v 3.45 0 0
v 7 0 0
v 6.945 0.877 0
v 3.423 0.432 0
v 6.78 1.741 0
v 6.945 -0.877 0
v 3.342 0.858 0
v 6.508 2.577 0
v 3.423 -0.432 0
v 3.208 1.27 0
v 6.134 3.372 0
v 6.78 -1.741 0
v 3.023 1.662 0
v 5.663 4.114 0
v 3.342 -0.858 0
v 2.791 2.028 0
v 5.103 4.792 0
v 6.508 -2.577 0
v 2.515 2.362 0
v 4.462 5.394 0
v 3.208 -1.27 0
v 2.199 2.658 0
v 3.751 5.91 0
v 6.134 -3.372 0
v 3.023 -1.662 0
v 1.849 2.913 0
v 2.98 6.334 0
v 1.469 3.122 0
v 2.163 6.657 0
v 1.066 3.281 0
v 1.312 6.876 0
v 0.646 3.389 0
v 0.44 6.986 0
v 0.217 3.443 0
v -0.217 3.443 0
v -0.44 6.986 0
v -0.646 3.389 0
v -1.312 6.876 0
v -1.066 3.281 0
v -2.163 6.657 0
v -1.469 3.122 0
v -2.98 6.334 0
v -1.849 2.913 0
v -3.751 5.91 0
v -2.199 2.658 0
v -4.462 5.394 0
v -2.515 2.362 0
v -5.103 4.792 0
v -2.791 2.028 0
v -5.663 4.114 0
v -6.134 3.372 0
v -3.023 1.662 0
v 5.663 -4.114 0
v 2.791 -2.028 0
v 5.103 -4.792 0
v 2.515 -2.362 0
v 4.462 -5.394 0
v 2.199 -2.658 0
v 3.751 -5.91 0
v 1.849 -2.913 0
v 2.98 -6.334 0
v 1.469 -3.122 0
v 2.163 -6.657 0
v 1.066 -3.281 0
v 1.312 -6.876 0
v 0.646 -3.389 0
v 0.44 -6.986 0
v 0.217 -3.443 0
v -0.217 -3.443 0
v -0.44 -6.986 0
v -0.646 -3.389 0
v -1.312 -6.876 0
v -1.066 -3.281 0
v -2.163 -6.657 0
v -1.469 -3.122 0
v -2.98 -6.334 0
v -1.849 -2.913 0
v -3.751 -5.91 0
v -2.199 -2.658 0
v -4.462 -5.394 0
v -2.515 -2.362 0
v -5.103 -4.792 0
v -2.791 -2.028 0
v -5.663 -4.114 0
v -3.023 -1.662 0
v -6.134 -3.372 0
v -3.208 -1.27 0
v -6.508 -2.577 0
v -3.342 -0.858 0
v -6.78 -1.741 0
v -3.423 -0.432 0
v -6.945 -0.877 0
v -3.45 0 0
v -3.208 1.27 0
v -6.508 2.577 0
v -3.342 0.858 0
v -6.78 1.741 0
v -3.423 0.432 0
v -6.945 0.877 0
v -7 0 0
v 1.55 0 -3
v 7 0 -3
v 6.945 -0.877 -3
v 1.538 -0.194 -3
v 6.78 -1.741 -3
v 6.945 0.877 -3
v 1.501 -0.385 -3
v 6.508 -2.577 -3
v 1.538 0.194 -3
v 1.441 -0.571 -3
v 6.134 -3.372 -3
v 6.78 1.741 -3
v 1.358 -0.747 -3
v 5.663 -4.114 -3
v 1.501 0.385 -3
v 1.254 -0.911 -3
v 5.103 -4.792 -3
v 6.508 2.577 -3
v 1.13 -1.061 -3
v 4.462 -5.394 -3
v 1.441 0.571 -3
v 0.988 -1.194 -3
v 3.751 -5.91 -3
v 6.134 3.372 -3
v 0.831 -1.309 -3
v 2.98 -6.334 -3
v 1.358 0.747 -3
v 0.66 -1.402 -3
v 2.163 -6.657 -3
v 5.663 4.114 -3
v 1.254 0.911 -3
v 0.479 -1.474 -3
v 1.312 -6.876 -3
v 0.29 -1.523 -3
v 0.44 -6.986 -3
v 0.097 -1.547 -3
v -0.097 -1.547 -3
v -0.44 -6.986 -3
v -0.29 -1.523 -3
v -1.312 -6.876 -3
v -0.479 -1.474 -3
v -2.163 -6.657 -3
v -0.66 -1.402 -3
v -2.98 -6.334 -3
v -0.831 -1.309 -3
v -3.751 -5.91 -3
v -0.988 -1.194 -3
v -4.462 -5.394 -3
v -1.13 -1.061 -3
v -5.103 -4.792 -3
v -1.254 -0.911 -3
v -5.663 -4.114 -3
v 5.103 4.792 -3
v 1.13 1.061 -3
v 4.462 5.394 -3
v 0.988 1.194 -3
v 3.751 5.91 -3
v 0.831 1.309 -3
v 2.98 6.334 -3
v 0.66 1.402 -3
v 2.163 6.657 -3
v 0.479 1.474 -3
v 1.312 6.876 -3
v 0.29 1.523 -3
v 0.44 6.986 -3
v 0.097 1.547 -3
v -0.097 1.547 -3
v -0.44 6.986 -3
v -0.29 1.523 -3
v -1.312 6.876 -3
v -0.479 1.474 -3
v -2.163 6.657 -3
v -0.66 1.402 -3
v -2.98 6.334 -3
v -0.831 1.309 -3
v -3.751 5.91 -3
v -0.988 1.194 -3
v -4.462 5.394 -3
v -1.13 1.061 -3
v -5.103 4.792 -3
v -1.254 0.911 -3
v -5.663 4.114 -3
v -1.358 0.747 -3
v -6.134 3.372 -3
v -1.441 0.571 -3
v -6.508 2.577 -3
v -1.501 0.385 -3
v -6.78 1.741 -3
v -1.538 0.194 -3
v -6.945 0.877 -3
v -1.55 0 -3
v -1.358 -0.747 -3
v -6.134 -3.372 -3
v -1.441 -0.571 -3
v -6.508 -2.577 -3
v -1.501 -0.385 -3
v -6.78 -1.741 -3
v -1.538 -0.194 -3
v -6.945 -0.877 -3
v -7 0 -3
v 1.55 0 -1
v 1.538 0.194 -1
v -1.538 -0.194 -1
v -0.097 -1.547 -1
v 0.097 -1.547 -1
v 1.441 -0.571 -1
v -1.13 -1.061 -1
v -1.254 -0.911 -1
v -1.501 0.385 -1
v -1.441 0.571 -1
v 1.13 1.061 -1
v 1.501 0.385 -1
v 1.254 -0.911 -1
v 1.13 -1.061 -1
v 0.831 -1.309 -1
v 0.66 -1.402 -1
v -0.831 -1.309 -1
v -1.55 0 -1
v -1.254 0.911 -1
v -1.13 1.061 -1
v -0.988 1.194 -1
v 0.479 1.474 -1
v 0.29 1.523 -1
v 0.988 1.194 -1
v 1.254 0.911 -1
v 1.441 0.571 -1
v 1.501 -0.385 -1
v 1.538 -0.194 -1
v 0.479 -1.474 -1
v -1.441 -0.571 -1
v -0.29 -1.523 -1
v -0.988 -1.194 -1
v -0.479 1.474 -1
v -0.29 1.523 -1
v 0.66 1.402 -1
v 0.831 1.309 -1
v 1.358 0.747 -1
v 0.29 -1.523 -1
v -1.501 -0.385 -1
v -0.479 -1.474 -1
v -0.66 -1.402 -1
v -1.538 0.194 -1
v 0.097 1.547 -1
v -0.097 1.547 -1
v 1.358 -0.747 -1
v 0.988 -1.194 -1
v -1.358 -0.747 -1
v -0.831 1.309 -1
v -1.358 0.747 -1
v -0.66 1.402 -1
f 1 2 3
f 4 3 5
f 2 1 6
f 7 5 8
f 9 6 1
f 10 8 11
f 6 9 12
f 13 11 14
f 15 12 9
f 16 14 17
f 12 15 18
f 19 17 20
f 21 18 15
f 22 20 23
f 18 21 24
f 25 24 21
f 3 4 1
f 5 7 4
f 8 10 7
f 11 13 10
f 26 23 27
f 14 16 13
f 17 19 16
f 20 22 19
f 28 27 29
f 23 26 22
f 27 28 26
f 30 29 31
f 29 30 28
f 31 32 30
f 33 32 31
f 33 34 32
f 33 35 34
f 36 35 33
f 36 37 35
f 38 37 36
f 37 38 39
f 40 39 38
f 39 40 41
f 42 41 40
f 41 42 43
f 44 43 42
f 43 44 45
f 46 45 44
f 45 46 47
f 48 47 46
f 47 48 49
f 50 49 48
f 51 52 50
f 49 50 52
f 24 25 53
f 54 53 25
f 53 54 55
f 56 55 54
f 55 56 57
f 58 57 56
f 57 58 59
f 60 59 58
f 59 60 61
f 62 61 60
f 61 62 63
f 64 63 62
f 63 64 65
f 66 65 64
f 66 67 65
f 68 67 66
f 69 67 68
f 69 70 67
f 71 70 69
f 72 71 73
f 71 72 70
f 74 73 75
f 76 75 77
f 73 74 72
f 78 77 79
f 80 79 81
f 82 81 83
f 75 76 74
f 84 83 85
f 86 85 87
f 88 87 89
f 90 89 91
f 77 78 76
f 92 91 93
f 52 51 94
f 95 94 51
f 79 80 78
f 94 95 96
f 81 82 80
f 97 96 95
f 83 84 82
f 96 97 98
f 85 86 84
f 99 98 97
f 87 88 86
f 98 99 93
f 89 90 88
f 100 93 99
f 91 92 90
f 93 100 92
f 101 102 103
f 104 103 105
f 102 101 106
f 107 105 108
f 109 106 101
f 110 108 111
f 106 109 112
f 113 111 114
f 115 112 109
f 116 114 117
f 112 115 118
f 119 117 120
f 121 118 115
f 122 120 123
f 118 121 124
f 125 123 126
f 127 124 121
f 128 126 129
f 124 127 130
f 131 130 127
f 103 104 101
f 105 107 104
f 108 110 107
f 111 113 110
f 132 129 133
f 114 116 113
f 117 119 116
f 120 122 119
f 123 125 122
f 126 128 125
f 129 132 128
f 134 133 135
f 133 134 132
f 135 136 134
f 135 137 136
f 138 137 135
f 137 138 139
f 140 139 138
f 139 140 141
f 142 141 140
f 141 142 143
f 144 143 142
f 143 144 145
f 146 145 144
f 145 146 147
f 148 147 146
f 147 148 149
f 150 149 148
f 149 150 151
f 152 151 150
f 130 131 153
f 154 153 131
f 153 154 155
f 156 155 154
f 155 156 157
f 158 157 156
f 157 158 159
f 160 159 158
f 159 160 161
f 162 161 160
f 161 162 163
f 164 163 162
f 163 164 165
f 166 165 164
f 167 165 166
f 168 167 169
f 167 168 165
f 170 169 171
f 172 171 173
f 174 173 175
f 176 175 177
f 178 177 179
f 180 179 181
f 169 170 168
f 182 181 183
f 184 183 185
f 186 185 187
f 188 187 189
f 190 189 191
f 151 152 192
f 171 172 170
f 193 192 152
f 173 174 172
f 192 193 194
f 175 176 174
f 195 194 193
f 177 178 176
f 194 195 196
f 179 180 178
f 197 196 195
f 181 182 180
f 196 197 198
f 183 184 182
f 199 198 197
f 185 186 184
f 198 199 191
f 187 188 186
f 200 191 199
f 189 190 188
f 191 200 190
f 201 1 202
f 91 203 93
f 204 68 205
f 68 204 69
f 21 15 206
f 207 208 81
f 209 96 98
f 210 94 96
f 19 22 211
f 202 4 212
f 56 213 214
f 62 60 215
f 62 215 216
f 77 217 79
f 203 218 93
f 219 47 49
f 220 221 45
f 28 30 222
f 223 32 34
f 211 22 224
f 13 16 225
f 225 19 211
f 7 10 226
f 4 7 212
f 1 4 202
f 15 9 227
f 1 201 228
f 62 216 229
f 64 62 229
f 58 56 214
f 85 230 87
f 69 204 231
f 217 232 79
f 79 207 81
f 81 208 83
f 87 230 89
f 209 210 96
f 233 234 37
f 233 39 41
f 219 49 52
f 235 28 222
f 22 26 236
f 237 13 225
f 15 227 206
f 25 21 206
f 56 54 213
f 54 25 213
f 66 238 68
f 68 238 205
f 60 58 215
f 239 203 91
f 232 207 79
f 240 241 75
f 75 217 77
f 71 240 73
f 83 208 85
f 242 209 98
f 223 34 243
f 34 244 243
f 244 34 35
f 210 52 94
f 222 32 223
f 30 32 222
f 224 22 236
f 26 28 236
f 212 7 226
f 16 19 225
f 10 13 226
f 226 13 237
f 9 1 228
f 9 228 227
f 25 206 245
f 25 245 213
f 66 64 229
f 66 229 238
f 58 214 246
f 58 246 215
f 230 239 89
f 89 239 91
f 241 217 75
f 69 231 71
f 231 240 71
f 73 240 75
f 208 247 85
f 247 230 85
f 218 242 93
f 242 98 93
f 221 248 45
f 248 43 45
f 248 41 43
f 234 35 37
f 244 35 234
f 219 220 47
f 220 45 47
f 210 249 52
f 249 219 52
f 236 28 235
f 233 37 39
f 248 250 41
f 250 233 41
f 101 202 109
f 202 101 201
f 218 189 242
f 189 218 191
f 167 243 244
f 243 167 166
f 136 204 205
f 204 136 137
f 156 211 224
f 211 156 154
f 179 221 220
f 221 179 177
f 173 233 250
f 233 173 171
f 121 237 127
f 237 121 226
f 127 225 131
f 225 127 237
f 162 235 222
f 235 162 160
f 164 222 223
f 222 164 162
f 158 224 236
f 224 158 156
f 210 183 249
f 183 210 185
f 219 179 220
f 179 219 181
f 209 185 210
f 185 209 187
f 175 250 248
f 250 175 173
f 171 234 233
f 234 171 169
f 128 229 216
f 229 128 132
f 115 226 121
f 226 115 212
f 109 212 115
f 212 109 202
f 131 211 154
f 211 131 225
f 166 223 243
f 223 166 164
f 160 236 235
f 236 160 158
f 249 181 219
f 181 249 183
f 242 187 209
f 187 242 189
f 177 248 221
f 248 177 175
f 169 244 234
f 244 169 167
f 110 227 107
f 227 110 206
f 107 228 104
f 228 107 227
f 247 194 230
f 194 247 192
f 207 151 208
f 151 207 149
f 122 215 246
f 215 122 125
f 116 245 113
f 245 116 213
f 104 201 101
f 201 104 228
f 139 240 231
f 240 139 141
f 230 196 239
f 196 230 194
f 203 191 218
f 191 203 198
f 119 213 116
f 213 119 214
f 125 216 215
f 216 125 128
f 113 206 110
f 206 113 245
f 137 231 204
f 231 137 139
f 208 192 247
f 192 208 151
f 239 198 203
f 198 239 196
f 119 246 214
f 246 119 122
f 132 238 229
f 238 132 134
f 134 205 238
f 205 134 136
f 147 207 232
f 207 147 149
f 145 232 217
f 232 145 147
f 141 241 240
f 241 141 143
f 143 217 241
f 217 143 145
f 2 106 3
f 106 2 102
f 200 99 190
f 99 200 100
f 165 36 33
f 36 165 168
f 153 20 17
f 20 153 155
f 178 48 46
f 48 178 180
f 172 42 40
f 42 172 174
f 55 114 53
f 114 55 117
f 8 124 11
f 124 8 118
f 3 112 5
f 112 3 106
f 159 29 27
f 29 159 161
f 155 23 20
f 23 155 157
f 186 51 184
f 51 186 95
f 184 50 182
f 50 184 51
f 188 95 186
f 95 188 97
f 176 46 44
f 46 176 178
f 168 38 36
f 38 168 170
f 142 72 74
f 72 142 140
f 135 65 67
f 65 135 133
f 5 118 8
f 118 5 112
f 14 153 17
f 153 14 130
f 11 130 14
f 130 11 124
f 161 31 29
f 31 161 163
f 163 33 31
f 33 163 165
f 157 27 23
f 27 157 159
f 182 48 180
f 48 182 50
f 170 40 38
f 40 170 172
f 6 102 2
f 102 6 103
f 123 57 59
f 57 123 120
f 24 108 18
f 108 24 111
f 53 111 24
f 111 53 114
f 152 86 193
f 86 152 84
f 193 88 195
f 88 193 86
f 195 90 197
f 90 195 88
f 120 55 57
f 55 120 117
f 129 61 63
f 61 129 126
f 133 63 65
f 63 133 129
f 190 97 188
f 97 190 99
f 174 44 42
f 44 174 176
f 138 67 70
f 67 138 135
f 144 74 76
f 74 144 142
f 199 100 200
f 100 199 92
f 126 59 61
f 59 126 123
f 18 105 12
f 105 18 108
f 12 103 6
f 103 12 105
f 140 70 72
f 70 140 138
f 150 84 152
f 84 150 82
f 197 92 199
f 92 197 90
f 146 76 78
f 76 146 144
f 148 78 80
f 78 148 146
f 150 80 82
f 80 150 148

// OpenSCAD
$fn = 50;


difference() {
	union() {
		translate(v = [0, 0, -3.0000000000]) {
			cylinder(h = 3, r = 7.0000000000);
		}
	}
	union() {
		translate(v = [0, 0, 0]) {
			rotate(a = [0, 0, 0]) {
				difference() {
					union() {
						translate(v = [0, 0, -3.0000000000]) {
							cylinder(h = 3, r = 1.2500000000);
						}
						translate(v = [0, 0, -1.0000000000]) {
							cylinder(h = 1.0000000000, r1 = 1.5500000000, r2 = 3.4500000000);
						}
						translate(v = [0, 0, -3.0000000000]) {
							cylinder(h = 3, r = 1.5500000000);
						}
						translate(v = [0, 0, -3.0000000000]) {
							cylinder(h = 3, r = 1.2500000000);
						}
					}
					union();
				}
			}
		}
	}
}
